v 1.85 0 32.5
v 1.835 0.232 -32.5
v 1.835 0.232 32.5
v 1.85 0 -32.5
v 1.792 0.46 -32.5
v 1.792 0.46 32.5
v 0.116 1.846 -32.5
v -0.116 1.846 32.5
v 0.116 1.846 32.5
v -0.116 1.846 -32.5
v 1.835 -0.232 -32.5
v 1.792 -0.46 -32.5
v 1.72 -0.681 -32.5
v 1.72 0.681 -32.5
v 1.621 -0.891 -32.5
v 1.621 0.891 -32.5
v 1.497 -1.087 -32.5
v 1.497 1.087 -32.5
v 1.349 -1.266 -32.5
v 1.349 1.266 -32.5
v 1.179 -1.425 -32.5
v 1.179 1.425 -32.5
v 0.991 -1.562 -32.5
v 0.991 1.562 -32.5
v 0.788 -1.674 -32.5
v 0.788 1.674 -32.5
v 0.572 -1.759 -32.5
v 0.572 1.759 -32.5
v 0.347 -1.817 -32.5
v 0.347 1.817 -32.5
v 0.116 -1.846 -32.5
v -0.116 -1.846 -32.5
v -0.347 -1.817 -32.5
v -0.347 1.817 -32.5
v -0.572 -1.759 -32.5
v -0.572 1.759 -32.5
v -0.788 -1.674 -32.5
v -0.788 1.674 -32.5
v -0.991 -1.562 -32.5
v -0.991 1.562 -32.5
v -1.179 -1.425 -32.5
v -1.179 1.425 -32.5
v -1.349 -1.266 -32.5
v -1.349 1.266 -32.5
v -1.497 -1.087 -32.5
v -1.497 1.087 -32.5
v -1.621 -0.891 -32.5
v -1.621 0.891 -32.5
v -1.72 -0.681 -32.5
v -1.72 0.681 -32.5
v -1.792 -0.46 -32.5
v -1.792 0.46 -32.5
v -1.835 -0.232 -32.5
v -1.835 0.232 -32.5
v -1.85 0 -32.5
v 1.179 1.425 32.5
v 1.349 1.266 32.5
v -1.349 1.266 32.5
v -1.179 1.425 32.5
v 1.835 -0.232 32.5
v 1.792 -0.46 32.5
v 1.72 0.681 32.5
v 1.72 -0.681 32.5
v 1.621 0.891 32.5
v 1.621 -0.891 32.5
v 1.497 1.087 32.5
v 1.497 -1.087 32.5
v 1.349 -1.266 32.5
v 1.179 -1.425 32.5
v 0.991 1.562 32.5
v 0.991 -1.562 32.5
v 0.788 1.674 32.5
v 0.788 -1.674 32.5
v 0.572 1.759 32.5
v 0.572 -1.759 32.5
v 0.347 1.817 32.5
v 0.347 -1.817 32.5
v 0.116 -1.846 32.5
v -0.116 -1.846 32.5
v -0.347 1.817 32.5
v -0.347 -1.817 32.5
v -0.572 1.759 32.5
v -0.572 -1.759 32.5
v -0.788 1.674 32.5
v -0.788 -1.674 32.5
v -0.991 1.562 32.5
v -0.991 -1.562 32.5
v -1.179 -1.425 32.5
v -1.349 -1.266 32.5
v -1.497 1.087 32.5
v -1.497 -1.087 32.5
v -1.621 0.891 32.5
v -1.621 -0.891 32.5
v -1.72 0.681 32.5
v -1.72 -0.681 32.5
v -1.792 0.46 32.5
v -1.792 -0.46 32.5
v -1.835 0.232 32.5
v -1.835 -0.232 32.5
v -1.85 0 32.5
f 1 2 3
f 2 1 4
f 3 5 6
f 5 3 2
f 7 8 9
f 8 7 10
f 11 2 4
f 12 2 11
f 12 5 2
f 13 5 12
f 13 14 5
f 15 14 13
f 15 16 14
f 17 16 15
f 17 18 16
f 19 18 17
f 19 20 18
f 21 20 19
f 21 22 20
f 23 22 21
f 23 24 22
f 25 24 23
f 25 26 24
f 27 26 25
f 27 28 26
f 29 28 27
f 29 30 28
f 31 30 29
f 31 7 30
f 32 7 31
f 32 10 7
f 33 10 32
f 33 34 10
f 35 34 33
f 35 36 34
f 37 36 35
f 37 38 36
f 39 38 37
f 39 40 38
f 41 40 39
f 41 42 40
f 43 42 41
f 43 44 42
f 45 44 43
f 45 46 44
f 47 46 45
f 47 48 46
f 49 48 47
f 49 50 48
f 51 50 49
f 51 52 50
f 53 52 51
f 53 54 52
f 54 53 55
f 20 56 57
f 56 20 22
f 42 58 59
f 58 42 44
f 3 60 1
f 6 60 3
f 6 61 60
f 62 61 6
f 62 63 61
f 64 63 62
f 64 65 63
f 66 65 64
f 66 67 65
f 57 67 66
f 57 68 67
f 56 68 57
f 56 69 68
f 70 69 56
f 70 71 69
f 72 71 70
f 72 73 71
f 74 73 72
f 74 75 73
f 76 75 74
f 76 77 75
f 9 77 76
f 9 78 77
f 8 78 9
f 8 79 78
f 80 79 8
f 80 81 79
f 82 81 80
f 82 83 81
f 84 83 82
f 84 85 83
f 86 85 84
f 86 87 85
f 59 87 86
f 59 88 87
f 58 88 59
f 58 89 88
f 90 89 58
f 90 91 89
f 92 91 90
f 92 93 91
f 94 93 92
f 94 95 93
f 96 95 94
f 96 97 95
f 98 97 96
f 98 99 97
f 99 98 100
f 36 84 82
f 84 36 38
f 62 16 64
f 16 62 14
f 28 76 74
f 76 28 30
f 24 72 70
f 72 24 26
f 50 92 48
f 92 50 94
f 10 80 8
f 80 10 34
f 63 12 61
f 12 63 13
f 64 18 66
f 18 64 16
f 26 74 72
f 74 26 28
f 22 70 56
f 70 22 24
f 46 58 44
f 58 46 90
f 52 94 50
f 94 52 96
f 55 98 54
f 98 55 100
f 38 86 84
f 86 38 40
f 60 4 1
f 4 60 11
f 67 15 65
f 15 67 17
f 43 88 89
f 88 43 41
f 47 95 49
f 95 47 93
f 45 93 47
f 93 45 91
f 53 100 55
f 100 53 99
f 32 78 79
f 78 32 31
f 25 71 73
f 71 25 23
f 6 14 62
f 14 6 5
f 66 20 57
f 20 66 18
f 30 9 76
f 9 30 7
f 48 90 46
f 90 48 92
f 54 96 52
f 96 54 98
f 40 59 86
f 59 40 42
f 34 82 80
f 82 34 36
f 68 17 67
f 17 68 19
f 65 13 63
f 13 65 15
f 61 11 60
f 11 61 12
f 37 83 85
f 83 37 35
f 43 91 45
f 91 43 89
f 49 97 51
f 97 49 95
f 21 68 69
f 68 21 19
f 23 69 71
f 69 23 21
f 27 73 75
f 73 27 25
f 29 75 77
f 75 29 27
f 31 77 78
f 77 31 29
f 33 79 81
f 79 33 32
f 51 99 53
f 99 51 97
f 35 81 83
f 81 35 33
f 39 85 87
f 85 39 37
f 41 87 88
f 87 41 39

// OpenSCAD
$fn = 50;


difference() {
	union() {
		translate(v = [0, 0, -32.5000000000]) {
			cylinder(h = 65, r = 1.8500000000);
		}
	}
	union() {
		translate(v = [0, 0, -100.0000000000]) {
			cylinder(h = 200, r = 0);
		}
	}
}
